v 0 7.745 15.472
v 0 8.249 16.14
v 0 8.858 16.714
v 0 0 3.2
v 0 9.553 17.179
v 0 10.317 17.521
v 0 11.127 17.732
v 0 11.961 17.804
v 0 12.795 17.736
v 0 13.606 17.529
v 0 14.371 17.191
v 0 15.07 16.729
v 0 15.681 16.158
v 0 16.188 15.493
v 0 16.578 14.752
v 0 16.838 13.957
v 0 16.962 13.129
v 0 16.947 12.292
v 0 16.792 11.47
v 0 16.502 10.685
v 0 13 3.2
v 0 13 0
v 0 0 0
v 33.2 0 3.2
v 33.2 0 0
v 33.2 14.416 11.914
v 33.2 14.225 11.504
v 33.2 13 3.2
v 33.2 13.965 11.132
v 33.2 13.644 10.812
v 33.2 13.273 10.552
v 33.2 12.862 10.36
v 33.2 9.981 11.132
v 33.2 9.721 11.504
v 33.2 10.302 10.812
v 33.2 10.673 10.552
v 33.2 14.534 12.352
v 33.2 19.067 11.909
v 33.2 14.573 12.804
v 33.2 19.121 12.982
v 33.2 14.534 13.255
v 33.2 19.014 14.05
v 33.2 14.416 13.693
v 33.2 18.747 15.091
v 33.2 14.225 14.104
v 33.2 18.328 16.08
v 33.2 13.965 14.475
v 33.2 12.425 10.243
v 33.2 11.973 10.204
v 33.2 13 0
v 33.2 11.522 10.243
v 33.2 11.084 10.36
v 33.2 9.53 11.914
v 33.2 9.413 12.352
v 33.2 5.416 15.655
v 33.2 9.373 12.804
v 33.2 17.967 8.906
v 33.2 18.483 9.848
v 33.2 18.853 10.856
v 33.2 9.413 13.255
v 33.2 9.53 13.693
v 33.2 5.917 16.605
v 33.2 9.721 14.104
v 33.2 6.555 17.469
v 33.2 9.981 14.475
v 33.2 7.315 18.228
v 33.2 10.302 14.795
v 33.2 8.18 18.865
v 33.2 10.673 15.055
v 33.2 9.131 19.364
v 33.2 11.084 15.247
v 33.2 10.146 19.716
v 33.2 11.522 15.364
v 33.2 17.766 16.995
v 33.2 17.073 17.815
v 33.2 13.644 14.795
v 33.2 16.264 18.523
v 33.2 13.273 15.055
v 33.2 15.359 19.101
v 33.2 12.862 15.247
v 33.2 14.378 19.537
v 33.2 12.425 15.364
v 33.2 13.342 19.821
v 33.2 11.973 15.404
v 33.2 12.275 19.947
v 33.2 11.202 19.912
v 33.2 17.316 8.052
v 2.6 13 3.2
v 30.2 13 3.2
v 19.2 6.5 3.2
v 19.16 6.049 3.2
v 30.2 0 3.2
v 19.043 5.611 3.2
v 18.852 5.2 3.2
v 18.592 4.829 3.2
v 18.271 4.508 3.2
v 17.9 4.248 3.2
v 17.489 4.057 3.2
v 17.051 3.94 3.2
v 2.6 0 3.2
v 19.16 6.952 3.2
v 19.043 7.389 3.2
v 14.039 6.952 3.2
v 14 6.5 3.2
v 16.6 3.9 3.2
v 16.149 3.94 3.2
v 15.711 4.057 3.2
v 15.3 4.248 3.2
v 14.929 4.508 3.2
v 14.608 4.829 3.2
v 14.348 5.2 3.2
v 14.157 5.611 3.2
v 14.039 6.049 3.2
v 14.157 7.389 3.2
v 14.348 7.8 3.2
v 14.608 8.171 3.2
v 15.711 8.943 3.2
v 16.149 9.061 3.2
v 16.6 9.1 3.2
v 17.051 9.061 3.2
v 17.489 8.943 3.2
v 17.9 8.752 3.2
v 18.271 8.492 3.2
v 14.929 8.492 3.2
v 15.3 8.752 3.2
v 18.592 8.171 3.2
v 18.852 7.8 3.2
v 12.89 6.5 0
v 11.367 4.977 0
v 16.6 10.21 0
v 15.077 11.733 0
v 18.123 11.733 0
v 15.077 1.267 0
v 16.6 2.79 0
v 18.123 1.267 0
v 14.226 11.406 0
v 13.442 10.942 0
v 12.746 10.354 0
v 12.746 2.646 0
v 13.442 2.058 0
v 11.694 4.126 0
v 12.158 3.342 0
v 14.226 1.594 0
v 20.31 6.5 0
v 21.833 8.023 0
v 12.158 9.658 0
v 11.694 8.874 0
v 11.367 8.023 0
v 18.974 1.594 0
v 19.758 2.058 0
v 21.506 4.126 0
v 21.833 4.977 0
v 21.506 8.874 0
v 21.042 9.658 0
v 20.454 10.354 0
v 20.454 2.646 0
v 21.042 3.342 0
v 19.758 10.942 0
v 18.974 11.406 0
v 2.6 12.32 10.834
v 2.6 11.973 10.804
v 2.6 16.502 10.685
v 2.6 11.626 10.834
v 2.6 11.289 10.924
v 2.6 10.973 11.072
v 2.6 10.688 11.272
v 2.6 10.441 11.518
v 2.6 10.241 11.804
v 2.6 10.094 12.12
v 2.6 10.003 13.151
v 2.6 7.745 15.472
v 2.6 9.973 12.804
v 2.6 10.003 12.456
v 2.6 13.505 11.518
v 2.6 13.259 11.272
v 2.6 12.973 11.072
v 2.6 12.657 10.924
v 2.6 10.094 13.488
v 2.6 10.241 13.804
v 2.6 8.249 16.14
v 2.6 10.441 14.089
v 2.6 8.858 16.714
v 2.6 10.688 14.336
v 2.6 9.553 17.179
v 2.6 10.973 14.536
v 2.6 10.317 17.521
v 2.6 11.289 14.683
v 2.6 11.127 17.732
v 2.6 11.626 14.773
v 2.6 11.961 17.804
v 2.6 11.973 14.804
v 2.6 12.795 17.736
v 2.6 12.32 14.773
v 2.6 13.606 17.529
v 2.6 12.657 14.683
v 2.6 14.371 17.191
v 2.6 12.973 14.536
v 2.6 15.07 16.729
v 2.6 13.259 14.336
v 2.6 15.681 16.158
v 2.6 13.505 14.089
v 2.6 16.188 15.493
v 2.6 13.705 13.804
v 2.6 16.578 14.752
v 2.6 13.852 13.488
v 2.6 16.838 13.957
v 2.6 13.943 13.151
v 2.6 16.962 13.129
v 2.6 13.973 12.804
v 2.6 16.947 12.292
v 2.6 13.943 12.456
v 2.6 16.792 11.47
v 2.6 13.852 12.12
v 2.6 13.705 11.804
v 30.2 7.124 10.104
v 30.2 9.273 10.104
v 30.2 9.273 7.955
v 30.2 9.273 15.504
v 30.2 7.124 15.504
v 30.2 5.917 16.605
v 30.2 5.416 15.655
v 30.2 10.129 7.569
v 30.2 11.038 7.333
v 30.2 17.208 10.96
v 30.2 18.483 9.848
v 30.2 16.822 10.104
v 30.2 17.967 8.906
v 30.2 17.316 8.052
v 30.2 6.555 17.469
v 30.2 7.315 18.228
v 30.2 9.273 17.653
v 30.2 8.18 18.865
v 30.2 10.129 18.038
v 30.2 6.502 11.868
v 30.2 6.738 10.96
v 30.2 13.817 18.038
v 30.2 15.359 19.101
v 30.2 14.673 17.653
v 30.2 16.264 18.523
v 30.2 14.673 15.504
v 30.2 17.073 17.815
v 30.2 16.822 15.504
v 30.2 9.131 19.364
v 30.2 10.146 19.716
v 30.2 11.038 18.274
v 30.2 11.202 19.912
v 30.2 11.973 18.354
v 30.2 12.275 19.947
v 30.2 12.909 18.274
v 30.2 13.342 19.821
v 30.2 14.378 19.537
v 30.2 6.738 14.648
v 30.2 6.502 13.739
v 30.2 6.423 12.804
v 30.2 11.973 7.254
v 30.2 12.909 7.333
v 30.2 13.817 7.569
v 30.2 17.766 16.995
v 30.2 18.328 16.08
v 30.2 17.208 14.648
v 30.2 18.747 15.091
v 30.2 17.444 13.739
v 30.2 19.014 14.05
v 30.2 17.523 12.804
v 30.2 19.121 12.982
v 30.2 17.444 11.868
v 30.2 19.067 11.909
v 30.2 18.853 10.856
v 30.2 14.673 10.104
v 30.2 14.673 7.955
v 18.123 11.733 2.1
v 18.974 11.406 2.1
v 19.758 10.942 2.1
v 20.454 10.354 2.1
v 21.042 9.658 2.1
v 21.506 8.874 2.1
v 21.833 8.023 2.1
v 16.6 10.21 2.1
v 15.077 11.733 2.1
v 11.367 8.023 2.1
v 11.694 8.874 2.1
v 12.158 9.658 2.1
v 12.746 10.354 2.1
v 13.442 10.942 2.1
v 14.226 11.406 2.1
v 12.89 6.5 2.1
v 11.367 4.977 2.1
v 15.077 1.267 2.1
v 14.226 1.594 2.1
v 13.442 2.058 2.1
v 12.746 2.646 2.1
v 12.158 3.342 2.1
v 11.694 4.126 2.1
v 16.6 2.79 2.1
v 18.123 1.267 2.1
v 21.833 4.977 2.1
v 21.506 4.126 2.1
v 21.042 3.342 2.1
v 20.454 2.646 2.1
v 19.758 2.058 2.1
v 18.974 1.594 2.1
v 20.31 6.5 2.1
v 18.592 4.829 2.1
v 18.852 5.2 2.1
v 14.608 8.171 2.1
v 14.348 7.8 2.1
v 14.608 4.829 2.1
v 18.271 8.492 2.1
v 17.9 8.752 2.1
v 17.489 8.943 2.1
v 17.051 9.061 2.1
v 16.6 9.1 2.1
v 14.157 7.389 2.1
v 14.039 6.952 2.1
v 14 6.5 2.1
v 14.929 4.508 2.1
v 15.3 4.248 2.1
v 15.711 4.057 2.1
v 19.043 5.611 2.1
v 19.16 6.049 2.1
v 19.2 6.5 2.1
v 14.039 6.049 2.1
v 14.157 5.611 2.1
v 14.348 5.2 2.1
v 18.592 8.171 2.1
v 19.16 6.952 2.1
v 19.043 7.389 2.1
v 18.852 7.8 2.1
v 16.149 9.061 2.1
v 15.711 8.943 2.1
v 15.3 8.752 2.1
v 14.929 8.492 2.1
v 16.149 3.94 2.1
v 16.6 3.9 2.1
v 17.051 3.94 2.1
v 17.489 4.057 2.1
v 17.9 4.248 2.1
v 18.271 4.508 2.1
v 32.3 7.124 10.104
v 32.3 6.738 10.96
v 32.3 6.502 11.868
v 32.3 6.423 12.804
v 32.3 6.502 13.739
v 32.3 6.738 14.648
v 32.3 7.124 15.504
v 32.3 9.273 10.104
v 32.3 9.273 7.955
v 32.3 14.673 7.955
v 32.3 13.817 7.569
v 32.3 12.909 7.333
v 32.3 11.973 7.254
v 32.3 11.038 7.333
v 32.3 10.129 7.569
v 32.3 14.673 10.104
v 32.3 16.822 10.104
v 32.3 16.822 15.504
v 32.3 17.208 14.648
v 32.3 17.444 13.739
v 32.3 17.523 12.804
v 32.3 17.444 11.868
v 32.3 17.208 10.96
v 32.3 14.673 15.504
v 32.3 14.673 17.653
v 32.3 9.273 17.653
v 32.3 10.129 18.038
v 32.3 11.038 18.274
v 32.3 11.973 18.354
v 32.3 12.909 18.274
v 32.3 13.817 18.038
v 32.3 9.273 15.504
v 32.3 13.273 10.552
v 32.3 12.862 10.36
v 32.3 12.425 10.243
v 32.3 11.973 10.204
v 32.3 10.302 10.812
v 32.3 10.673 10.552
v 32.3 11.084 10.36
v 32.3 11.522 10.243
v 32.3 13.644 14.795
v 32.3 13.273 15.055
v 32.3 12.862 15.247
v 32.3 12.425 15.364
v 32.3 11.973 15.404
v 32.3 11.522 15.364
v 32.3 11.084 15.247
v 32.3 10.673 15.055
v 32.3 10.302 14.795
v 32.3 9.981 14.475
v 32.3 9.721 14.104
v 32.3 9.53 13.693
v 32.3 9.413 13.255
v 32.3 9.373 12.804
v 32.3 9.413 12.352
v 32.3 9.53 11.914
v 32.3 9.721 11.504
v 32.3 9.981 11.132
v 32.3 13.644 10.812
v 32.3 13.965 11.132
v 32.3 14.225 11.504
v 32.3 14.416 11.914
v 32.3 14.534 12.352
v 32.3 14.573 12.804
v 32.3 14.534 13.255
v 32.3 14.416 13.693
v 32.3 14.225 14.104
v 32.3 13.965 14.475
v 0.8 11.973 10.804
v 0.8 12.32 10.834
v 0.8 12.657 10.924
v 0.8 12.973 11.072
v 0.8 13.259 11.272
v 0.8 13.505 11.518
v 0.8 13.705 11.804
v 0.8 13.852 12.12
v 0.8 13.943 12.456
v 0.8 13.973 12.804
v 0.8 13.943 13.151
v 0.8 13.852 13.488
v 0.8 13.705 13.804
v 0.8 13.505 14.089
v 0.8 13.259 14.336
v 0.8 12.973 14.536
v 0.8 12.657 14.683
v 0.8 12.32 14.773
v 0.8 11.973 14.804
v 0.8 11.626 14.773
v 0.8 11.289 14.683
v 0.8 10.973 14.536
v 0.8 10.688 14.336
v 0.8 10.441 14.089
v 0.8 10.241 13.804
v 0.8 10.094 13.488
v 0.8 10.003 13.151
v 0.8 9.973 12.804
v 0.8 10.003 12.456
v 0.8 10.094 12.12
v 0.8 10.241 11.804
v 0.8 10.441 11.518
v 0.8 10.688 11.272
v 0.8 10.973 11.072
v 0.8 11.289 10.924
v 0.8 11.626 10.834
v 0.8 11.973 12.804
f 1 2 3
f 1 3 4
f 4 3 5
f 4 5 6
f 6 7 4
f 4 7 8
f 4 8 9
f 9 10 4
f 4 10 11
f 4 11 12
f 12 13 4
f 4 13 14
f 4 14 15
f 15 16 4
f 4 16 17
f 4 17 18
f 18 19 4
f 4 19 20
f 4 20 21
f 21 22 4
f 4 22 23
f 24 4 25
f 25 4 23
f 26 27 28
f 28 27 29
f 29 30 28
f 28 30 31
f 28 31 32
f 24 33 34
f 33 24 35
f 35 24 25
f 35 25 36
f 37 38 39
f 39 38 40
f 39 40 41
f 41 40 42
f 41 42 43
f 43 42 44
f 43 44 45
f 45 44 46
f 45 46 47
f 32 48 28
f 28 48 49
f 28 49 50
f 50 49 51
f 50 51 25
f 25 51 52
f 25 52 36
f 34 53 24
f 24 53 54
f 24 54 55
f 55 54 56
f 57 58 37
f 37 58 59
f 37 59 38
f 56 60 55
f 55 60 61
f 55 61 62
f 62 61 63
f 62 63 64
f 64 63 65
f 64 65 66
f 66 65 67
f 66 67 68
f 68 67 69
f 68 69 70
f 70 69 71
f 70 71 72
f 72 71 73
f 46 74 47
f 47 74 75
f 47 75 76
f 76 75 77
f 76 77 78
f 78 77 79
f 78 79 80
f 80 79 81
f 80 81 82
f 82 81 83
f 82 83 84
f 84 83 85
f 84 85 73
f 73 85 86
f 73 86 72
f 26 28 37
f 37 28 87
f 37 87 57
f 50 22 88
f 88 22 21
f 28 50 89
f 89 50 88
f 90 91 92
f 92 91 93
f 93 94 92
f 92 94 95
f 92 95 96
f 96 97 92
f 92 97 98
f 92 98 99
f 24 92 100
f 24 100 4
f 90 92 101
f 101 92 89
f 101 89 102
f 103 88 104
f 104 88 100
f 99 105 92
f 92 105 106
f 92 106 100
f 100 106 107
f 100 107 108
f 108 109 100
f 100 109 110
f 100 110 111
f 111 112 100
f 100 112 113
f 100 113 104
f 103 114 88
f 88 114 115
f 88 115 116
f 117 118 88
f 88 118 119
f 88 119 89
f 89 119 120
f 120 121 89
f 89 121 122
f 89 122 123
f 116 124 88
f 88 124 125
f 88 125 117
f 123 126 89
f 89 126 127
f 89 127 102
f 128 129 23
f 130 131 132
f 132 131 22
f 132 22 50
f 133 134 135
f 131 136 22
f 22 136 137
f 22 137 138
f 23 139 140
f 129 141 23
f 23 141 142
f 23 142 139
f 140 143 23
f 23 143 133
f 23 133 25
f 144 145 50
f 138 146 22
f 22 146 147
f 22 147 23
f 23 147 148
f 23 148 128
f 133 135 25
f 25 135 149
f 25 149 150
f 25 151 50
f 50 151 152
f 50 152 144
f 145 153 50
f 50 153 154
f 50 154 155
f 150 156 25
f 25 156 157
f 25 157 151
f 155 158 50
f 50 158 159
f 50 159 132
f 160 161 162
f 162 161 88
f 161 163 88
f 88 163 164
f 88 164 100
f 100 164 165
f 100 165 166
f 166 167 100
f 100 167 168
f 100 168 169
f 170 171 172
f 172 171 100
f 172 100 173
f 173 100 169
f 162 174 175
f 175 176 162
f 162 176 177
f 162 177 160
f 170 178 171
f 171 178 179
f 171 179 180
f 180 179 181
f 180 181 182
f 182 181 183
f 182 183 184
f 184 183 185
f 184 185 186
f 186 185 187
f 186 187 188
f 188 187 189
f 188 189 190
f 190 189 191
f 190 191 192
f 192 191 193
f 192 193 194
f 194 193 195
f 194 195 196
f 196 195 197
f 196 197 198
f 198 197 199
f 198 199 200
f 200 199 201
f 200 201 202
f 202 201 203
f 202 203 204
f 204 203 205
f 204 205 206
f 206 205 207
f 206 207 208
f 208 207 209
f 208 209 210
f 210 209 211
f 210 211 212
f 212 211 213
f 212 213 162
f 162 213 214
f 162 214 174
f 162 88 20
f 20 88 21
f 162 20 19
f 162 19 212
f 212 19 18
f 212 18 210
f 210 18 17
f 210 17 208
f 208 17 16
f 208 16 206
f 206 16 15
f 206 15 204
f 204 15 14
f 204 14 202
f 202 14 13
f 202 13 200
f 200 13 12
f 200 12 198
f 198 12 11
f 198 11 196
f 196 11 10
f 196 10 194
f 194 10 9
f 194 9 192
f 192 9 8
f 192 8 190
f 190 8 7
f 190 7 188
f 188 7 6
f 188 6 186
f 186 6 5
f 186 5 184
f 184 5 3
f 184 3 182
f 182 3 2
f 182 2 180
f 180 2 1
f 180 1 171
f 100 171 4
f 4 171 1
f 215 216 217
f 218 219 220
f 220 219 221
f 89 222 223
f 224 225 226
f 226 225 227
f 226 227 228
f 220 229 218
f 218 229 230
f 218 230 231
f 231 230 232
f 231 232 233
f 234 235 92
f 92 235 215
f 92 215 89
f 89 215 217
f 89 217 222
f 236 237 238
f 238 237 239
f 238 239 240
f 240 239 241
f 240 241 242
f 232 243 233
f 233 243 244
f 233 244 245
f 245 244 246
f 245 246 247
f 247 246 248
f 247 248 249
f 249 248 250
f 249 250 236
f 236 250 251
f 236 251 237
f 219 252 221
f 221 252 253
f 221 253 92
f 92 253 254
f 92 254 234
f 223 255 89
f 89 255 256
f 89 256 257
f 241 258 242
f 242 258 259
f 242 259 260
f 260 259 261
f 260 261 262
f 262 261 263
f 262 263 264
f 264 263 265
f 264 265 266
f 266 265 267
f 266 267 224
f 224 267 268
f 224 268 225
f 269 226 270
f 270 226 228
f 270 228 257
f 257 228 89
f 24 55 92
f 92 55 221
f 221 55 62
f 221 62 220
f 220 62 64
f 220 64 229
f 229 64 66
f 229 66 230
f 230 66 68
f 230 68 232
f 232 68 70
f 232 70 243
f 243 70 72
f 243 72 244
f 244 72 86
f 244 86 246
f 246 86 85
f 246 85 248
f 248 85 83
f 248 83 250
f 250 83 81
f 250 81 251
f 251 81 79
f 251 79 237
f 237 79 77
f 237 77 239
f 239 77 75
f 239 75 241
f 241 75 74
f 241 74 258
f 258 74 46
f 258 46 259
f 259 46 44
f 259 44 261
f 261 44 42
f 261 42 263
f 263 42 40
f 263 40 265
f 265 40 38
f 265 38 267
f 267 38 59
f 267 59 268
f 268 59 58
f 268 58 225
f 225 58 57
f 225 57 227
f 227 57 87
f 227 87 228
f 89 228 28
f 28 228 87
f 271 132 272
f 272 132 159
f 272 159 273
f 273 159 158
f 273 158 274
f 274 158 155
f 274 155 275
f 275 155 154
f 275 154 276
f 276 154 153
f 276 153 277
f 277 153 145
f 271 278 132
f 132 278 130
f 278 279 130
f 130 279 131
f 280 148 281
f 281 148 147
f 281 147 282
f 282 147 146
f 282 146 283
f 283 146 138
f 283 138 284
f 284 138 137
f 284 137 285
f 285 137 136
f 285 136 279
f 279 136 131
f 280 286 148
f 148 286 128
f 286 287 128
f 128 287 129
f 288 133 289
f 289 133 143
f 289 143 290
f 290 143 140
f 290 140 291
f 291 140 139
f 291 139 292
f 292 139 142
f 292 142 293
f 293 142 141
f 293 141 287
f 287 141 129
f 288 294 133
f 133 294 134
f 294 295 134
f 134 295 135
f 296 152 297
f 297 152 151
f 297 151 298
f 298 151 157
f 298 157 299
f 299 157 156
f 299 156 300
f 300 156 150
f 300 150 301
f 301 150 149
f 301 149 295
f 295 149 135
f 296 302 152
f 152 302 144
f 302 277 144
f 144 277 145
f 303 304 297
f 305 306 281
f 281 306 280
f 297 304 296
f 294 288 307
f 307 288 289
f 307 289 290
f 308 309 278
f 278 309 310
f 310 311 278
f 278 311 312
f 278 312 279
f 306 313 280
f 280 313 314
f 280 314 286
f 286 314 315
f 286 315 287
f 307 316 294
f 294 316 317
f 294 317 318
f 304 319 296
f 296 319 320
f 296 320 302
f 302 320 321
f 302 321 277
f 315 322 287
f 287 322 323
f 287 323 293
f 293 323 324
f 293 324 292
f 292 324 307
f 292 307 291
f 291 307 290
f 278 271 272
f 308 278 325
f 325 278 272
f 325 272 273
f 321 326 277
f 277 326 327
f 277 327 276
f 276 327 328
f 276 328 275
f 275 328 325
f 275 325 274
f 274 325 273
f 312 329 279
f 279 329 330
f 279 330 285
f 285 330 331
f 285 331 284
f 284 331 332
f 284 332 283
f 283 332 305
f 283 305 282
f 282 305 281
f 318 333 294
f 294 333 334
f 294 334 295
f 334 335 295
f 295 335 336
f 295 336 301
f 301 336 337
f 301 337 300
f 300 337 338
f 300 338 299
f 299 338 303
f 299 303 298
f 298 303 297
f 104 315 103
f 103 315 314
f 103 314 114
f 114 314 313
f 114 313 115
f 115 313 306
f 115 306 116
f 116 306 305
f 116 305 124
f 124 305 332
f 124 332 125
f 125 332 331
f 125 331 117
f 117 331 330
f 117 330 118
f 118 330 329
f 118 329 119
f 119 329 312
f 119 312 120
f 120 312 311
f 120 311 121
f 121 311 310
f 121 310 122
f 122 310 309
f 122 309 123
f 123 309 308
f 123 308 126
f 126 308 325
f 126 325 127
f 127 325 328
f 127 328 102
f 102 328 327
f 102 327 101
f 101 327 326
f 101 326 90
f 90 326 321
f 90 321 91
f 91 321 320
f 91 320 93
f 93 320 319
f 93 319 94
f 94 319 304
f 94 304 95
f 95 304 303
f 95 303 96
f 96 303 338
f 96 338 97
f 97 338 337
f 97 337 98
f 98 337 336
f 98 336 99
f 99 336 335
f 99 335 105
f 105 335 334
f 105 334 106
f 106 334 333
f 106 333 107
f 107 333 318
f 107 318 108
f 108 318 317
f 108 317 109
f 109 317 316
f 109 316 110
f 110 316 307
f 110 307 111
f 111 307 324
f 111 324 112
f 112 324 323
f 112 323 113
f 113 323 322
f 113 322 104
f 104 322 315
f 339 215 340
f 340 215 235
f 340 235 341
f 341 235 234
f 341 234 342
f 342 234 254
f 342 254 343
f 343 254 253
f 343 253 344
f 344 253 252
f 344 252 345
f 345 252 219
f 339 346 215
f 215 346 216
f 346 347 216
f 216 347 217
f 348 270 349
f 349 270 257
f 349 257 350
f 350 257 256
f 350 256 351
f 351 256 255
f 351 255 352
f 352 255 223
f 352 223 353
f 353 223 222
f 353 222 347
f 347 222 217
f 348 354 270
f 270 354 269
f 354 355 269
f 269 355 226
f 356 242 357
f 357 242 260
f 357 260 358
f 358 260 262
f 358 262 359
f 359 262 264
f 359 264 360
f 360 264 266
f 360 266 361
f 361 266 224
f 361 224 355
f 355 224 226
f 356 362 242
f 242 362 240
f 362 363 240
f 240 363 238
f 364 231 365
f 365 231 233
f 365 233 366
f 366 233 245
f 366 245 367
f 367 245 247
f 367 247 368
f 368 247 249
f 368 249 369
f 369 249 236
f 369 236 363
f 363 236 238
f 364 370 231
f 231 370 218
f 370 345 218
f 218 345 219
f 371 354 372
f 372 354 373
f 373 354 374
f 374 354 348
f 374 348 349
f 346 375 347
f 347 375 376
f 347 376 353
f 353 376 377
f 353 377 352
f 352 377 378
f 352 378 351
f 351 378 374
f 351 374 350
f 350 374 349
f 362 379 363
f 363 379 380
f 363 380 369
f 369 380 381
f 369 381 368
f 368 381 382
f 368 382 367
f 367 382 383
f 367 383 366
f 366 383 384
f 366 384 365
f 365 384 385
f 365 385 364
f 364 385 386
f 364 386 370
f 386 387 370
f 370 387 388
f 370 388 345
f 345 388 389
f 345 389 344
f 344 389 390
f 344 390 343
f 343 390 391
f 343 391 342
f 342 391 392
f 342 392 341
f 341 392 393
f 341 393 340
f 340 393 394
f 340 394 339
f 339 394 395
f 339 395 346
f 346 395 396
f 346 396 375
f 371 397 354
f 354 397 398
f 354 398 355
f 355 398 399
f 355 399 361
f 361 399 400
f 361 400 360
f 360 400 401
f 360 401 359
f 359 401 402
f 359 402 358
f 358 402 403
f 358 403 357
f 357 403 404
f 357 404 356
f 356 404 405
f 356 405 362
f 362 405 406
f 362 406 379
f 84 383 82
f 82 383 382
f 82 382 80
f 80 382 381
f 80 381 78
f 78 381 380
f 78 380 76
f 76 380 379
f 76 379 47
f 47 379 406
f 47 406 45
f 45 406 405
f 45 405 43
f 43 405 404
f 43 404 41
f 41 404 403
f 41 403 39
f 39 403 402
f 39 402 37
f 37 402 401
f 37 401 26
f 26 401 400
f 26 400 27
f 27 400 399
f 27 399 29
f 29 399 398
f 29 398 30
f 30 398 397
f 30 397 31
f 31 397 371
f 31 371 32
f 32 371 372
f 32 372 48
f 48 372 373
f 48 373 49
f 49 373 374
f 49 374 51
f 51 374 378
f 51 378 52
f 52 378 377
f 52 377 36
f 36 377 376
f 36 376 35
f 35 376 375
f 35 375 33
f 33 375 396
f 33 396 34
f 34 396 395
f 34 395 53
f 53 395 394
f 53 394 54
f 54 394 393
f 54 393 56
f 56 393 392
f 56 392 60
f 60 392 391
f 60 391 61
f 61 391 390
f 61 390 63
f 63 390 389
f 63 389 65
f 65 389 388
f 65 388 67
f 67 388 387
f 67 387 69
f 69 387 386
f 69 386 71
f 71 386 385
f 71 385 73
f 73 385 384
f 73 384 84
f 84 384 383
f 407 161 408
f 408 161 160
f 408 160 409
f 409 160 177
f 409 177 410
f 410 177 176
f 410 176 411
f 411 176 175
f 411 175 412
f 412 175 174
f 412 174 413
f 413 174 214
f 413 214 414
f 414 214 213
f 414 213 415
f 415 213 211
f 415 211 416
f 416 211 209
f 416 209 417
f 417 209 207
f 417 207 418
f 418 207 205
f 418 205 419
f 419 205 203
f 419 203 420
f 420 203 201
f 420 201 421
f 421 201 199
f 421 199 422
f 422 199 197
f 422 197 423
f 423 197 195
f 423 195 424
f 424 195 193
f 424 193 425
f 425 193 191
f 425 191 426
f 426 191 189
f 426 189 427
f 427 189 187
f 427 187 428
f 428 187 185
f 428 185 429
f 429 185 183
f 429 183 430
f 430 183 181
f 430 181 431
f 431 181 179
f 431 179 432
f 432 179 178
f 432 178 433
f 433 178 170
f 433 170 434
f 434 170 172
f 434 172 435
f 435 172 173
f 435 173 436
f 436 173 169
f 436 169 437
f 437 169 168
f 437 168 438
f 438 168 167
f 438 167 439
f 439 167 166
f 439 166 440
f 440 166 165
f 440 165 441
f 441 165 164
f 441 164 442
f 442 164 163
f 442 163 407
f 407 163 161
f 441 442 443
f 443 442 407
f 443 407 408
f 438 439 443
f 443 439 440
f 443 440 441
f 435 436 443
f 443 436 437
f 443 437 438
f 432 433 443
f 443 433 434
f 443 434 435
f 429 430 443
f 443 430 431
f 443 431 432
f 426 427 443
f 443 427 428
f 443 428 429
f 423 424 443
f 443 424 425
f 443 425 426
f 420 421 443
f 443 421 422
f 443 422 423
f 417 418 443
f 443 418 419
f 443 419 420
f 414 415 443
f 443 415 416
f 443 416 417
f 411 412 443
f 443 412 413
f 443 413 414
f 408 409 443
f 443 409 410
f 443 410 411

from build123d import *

# Parameters (mm, degrees)
EXTRUDE_1_DEPTH     = 3.2
EXTRUDE_2_DEPTH     = 2.6
EXTRUDE_3_DEPTH     = 3
CUT_EXTRUDE_1_DEPTH = 2.1
SKETCH_5_R          = 2.6
CUT_EXTRUDE_2_DEPTH = 1.1
CUT_EXTRUDE_3_DEPTH = 2.1
SKETCH_7_R          = 2.6
CUT_EXTRUDE_4_DEPTH = 0.9
SKETCH_8_R          = 2
CUT_EXTRUDE_5_DEPTH = 1.8


with BuildPart() as part:
    # ｽｹｯﾁ1 → ﾎﾞｽ - 押し出し1 (new body)
    with BuildSketch(Plane.XY):
        Polygon((0, 0), (13.621587752, 0), (19.578412248, 0), (33.2, 0), (33.2, 13.000240072), (19.578412248, 13.000240072), (13.621587752, 13.000240072), (0, 13.000240072), align=None)
    extrude(amount=EXTRUDE_1_DEPTH)

    # ｽｹｯﾁ2 → ﾎﾞｽ - 押し出し2 (add)
    with BuildSketch(Plane.ZY):
        with BuildLine():
            Line((3.199725342, 0), (15.472038891, 7.74466563))
            ThreePointArc((15.472038891, 7.74466563), (17.190896421, 14.371374104), (10.684882054, 16.501987504))
            Line((10.684882054, 16.501987504), (3.199725342, 13.000240072))
            Line((3.199725342, 13.000240072), (3.199725342, 0))
        make_face()
    extrude(amount=-EXTRUDE_2_DEPTH)

    # ｽｹｯﾁ3 → ﾎﾞｽ - 押し出し3 (add)
    with BuildSketch(Plane(origin=(33.2, 0, 0), x_dir=(0, 0, -1), z_dir=(1, 0, 0))):
        with BuildLine():
            Line((-3.199725342, 13.000240072), (-8.051923005, 17.315733546))
            ThreePointArc((-8.051923005, 17.315733546), (-18.828777882, 15.822754082), (-15.654913036, 5.416209475))
            Line((-15.654913036, 5.416209475), (-3.199725342, 0))
            Line((-3.199725342, 0), (-3.199725342, 13.000240072))
        make_face()
    extrude(amount=-EXTRUDE_3_DEPTH)

    # ｽｹｯﾁ4 → ｶｯﾄ - 押し出し1 (cut)
    with BuildSketch(Plane(origin=(0, 0, 0), x_dir=(-1, 0, 0), z_dir=(0, 0, -1))):
        with BuildLine():
            Line((-21.832955241, 8.023343606), (-20.309731671, 6.500120036))
            Line((-20.309731671, 6.500120036), (-21.832955241, 4.976896465))
            ThreePointArc((-21.832955241, 4.976896465), (-20.45383125, 2.646288786), (-18.12322357, 1.267164795))
            Line((-18.12322357, 1.267164795), (-16.6, 2.790388365))
            Line((-16.6, 2.790388365), (-15.07677643, 1.267164795))
            ThreePointArc((-15.07677643, 1.267164795), (-12.74616875, 2.646288786), (-11.367044759, 4.976896465))
            Line((-11.367044759, 4.976896465), (-12.890268329, 6.500120036))
            Line((-12.890268329, 6.500120036), (-11.367044759, 8.023343606))
            ThreePointArc((-11.367044759, 8.023343606), (-12.74616875, 10.353951285), (-15.07677643, 11.733075277))
            Line((-15.07677643, 11.733075277), (-16.6, 10.209851706))
            Line((-16.6, 10.209851706), (-18.12322357, 11.733075277))
            ThreePointArc((-18.12322357, 11.733075277), (-20.45383125, 10.353951285), (-21.832955241, 8.023343606))
        make_face()
    extrude(amount=-CUT_EXTRUDE_1_DEPTH, mode=Mode.SUBTRACT)

    # ｽｹｯﾁ5 → ｶｯﾄ - 押し出し2 (cut)
    with BuildSketch(Plane(origin=(0, 0, 2.1), x_dir=(-1, 0, 0), z_dir=(0, 0, -1))):
        with Locations((-16.6, 6.500120036)):
            Circle(SKETCH_5_R)
    extrude(amount=-CUT_EXTRUDE_2_DEPTH, mode=Mode.SUBTRACT)

    # ｽｹｯﾁ6 → ｶｯﾄ - 押し出し3 (cut)
    with BuildSketch(Plane.ZY.offset(-30.2)):
        with BuildLine():
            Line((15.503618238, 7.124116138), (15.503618238, 9.2730851))
            Line((15.503618238, 9.2730851), (17.6525872, 9.2730851))
            ThreePointArc((17.6525872, 9.2730851), (18.353618238, 11.9730851), (17.6525872, 14.6730851))
            Line((17.6525872, 14.6730851), (15.503618238, 14.6730851))
            Line((15.503618238, 14.6730851), (15.503618238, 16.822054063))
            ThreePointArc((15.503618238, 16.822054063), (12.803618238, 17.5230851), (10.103618238, 16.822054063))
            Line((10.103618238, 16.822054063), (10.103618238, 14.6730851))
            Line((10.103618238, 14.6730851), (7.954649275, 14.6730851))
            ThreePointArc((7.954649275, 14.6730851), (7.253618238, 11.9730851), (7.954649275, 9.2730851))
            Line((7.954649275, 9.2730851), (10.103618238, 9.2730851))
            Line((10.103618238, 9.2730851), (10.103618238, 7.124116138))
            ThreePointArc((10.103618238, 7.124116138), (12.803618238, 6.4230851), (15.503618238, 7.124116138))
        make_face()
    extrude(amount=-CUT_EXTRUDE_3_DEPTH, mode=Mode.SUBTRACT)

    # ｽｹｯﾁ7 → ｶｯﾄ - 押し出し4 (cut)
    with BuildSketch(Plane.ZY.offset(-32.3)):
        with Locations((12.803618238, 11.9730851)):
            Circle(SKETCH_7_R)
    extrude(amount=-CUT_EXTRUDE_4_DEPTH, mode=Mode.SUBTRACT)

    # ｽｹｯﾁ8 → ｶｯﾄ - 押し出し5 (cut)
    with BuildSketch(Plane(origin=(2.6, 0, 0), x_dir=(0, 0, -1), z_dir=(1, 0, 0))):
        with Locations((-12.803618238, 11.9730851)):
            Circle(SKETCH_8_R)
    extrude(amount=-CUT_EXTRUDE_5_DEPTH, mode=Mode.SUBTRACT)


solid = part.part
